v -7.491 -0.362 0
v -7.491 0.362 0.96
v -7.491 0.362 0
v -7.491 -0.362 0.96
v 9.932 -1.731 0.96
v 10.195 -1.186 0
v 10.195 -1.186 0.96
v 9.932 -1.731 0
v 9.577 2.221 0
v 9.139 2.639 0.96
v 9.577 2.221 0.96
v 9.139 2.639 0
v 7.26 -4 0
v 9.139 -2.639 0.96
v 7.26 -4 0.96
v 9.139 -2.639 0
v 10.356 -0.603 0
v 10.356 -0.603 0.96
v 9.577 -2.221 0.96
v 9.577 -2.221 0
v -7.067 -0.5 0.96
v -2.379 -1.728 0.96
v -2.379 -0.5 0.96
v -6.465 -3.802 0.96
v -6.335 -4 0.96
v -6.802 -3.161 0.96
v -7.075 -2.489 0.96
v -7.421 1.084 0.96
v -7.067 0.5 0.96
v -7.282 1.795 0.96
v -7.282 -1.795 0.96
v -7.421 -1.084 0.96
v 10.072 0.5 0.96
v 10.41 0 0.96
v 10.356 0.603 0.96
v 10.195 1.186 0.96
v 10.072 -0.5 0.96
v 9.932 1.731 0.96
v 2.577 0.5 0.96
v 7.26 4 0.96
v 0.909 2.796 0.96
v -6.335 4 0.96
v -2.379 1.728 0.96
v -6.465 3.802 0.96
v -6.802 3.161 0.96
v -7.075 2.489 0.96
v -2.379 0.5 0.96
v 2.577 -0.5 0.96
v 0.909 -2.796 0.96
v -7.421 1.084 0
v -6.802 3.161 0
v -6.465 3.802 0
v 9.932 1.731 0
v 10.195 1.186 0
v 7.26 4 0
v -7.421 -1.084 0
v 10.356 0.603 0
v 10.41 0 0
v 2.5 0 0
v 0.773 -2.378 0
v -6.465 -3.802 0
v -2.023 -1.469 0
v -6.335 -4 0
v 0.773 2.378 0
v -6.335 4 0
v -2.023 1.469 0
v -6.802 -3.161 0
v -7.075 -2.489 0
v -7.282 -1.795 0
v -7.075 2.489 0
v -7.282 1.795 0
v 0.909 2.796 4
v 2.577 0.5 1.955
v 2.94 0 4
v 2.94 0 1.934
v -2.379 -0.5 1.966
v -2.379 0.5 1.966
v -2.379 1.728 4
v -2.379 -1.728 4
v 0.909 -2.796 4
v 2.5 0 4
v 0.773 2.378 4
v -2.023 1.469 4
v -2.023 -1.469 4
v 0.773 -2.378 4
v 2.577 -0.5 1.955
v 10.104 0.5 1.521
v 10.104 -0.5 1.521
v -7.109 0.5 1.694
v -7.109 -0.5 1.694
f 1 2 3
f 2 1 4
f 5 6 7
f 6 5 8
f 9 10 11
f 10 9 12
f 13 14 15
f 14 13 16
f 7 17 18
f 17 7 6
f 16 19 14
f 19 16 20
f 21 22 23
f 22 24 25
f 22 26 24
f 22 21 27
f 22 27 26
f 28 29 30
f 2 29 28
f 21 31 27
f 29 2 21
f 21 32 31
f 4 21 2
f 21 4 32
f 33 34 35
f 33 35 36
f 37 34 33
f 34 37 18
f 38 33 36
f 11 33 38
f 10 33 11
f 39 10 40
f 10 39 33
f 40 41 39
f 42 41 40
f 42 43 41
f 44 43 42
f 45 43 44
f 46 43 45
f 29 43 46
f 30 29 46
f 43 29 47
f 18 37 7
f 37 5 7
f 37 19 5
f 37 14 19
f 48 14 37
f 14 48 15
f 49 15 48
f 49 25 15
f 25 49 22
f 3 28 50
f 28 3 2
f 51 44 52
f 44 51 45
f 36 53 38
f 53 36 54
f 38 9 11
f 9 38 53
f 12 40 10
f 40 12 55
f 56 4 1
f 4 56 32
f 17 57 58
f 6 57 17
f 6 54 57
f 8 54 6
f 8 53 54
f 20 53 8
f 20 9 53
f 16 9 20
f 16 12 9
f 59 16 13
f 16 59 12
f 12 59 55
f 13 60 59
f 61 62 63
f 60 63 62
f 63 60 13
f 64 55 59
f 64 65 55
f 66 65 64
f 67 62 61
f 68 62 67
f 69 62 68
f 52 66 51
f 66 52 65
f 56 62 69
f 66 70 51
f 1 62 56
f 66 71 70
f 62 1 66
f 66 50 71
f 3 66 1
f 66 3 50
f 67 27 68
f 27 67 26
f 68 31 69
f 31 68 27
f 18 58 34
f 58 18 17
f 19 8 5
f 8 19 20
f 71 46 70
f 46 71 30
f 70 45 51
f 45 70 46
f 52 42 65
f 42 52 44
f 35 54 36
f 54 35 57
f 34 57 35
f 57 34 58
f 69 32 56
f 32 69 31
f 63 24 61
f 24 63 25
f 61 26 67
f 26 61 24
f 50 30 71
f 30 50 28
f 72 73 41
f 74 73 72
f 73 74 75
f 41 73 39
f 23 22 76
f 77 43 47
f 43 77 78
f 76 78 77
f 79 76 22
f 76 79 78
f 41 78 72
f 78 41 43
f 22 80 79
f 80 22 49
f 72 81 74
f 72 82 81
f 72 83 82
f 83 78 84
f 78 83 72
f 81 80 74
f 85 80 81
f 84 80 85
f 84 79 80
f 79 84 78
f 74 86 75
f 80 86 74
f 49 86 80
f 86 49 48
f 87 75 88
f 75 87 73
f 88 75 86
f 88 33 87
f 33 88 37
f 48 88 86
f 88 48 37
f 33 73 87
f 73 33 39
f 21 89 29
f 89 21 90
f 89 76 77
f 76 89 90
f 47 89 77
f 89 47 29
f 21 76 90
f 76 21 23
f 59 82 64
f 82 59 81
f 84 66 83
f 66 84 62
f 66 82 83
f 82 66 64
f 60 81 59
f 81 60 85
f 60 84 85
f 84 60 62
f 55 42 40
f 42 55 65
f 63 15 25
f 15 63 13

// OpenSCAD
// file: plug-sensor-rod.scad
dia = 13;
length = 15.91;
dia2 = 4.75;
sensor_h = 30.75;

bolt_dia = 5.76;

clr = 0.3;

chipx = 2.47;
chipy = 3.07;
chipz = 0.96;

module main() {
    difference() {
        hull() {
            cylinder(d= dia-2*clr, h = sensor_h, $fn= 65, center=false);
            translate([length-dia/2-dia2/2,0,0])
                cylinder(d= dia2-2*clr, h = sensor_h, $fn= 35, center=false);
        }
        translate([0,0,sensor_h/2])
            rotate([0,90,0])
                cylinder(d = bolt_dia+2, h = length + 4, $fn = 21, center=true);
        translate([0,0,sensor_h*1/3]) hull() {
            cylinder(d= dia-2, h = sensor_h*1/3, $fn= 65, center=false);
            translate([length-dia/2-dia2/2,0,0])
                cylinder(d= dia2-2, h = sensor_h*1/3, $fn= 35, center=false);
        }
        translate([0,0,sensor_h*2/3-0.015]) hull() {
            cylinder(d1= dia-2.1, d2= 0.5,  h = sensor_h*0.8/3, $fn= 65, center=false);
            translate([length-dia/2-dia2/2,0,0])
                cylinder(d1= dia2-2.1, d2= 0.5, h = sensor_h*0.8/3, $fn= 35, center=false);
        }
    }
}

module cap() {
    
    hull() {
        cylinder(d= dia+2, h = chipz, $fn= 65, center=false);
        translate([length-dia/2-dia2/2,0,0])
            cylinder(d= dia2+2, h = chipz, $fn= 35, center=false);
    }
}

module chip_carrier() {
    cube([chipx, chipy, chipz]);
}
// main file
include <plug-sensor-rod.scad>

difference() {
    union() {
        cap();
        translate([0, 0, 0.5]) cylinder(d = 4+1+0.88, h = 3.5, $fn=5, center= false);
        rotate([0, 3.3, 0]) translate([ 0, -0.5, 0.6]) cube([10, 1, 1.5]);
        rotate([0, -3.3, 0]) translate([ -7, -0.5, 0.6]) cube([7, 1, 1.5]);
    }
    translate([0,0, -0.3])
        cylinder(d = 4+1, h = sensor_h*1/3-1, $fn=5, center= false);
    translate([-9, 4, -0.5]) cube([20, 8, 3], center=false);
    translate([-9, -4-8, -0.5]) cube([20, 8, 3], center=false);
}
